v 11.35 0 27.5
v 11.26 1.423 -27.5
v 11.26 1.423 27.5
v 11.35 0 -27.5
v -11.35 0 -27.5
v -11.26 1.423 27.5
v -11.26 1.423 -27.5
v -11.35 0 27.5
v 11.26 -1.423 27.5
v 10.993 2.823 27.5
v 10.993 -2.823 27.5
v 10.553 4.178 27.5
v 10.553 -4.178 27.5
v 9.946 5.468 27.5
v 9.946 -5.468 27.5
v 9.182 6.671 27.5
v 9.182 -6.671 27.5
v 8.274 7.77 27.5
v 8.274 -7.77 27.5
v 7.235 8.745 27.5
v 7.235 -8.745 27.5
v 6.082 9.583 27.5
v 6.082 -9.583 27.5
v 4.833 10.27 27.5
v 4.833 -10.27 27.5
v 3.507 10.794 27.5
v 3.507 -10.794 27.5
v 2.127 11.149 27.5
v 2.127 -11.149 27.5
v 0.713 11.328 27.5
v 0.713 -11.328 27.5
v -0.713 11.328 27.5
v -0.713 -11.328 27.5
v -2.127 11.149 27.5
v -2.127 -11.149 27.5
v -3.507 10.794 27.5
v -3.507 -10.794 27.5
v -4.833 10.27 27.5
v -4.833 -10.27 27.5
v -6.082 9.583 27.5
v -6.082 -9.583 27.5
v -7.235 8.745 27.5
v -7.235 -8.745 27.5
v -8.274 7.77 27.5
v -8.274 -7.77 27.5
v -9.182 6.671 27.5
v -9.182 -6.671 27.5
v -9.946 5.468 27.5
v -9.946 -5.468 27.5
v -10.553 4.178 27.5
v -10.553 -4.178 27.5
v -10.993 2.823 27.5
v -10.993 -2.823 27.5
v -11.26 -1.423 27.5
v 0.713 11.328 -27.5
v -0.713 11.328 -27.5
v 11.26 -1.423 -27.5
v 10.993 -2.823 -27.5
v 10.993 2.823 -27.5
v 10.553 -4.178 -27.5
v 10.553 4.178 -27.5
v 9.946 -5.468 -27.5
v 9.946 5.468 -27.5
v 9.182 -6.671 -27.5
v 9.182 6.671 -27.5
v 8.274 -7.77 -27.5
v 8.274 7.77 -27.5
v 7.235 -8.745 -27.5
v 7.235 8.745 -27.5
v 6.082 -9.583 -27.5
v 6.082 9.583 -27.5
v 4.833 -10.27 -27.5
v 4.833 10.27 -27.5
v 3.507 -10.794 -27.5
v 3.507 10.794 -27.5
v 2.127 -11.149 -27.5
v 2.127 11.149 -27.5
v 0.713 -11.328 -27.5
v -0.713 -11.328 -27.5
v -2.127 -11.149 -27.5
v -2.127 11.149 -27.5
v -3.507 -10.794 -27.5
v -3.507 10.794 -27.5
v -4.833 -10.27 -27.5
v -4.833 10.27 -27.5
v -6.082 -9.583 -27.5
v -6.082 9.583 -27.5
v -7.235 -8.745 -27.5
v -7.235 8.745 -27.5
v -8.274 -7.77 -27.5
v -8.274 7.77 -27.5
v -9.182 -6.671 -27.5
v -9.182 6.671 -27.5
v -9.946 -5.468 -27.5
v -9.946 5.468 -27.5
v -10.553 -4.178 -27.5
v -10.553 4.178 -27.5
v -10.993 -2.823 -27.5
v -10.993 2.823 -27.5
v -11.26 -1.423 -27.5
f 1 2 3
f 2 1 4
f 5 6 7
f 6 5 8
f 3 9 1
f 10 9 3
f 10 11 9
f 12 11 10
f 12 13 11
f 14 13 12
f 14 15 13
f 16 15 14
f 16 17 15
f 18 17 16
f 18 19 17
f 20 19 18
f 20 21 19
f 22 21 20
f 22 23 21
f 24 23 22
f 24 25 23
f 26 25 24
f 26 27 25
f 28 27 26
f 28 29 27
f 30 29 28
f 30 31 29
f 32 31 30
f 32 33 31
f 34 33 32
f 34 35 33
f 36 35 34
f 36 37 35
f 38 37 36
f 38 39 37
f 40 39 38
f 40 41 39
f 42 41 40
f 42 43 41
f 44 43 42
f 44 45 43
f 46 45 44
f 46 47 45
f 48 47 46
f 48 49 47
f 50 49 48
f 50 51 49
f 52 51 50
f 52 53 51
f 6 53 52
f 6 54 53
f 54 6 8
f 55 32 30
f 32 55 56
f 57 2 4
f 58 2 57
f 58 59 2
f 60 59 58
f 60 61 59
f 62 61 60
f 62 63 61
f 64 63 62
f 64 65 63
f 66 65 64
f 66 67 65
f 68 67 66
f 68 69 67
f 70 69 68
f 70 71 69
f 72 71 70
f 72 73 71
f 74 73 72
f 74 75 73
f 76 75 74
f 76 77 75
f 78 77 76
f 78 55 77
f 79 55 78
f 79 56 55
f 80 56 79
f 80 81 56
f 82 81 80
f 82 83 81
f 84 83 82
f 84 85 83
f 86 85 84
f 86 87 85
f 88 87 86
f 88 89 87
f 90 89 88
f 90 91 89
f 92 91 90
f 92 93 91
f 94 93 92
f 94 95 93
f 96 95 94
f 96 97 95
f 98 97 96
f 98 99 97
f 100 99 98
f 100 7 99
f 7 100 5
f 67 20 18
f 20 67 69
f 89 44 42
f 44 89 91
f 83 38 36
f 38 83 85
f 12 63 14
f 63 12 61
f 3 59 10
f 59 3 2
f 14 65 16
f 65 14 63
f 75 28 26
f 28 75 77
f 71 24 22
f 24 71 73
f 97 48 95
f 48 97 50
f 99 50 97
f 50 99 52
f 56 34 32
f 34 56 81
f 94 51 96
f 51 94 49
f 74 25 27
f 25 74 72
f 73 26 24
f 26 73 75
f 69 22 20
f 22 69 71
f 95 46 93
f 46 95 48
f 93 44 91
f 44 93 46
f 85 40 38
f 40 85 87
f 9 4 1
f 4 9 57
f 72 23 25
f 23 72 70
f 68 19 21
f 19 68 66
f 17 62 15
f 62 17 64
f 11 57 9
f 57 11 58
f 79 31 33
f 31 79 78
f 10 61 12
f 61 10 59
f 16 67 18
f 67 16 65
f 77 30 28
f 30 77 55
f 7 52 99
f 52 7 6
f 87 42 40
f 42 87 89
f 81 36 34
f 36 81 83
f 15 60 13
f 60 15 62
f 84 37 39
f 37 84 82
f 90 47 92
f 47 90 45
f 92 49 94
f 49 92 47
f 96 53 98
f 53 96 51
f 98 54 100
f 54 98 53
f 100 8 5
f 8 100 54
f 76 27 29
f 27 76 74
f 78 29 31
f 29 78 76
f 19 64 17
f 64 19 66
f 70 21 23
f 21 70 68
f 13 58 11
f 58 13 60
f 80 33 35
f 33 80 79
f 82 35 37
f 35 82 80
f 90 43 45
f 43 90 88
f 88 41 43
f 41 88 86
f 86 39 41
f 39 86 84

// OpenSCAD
$fn = 50;


difference() {
	union() {
		translate(v = [0, 0, -27.5000000000]) {
			cylinder(h = 55, r = 11.3500000000);
		}
	}
	union() {
		translate(v = [0, 0, -100.0000000000]) {
			cylinder(h = 200, r = 0);
		}
	}
}
